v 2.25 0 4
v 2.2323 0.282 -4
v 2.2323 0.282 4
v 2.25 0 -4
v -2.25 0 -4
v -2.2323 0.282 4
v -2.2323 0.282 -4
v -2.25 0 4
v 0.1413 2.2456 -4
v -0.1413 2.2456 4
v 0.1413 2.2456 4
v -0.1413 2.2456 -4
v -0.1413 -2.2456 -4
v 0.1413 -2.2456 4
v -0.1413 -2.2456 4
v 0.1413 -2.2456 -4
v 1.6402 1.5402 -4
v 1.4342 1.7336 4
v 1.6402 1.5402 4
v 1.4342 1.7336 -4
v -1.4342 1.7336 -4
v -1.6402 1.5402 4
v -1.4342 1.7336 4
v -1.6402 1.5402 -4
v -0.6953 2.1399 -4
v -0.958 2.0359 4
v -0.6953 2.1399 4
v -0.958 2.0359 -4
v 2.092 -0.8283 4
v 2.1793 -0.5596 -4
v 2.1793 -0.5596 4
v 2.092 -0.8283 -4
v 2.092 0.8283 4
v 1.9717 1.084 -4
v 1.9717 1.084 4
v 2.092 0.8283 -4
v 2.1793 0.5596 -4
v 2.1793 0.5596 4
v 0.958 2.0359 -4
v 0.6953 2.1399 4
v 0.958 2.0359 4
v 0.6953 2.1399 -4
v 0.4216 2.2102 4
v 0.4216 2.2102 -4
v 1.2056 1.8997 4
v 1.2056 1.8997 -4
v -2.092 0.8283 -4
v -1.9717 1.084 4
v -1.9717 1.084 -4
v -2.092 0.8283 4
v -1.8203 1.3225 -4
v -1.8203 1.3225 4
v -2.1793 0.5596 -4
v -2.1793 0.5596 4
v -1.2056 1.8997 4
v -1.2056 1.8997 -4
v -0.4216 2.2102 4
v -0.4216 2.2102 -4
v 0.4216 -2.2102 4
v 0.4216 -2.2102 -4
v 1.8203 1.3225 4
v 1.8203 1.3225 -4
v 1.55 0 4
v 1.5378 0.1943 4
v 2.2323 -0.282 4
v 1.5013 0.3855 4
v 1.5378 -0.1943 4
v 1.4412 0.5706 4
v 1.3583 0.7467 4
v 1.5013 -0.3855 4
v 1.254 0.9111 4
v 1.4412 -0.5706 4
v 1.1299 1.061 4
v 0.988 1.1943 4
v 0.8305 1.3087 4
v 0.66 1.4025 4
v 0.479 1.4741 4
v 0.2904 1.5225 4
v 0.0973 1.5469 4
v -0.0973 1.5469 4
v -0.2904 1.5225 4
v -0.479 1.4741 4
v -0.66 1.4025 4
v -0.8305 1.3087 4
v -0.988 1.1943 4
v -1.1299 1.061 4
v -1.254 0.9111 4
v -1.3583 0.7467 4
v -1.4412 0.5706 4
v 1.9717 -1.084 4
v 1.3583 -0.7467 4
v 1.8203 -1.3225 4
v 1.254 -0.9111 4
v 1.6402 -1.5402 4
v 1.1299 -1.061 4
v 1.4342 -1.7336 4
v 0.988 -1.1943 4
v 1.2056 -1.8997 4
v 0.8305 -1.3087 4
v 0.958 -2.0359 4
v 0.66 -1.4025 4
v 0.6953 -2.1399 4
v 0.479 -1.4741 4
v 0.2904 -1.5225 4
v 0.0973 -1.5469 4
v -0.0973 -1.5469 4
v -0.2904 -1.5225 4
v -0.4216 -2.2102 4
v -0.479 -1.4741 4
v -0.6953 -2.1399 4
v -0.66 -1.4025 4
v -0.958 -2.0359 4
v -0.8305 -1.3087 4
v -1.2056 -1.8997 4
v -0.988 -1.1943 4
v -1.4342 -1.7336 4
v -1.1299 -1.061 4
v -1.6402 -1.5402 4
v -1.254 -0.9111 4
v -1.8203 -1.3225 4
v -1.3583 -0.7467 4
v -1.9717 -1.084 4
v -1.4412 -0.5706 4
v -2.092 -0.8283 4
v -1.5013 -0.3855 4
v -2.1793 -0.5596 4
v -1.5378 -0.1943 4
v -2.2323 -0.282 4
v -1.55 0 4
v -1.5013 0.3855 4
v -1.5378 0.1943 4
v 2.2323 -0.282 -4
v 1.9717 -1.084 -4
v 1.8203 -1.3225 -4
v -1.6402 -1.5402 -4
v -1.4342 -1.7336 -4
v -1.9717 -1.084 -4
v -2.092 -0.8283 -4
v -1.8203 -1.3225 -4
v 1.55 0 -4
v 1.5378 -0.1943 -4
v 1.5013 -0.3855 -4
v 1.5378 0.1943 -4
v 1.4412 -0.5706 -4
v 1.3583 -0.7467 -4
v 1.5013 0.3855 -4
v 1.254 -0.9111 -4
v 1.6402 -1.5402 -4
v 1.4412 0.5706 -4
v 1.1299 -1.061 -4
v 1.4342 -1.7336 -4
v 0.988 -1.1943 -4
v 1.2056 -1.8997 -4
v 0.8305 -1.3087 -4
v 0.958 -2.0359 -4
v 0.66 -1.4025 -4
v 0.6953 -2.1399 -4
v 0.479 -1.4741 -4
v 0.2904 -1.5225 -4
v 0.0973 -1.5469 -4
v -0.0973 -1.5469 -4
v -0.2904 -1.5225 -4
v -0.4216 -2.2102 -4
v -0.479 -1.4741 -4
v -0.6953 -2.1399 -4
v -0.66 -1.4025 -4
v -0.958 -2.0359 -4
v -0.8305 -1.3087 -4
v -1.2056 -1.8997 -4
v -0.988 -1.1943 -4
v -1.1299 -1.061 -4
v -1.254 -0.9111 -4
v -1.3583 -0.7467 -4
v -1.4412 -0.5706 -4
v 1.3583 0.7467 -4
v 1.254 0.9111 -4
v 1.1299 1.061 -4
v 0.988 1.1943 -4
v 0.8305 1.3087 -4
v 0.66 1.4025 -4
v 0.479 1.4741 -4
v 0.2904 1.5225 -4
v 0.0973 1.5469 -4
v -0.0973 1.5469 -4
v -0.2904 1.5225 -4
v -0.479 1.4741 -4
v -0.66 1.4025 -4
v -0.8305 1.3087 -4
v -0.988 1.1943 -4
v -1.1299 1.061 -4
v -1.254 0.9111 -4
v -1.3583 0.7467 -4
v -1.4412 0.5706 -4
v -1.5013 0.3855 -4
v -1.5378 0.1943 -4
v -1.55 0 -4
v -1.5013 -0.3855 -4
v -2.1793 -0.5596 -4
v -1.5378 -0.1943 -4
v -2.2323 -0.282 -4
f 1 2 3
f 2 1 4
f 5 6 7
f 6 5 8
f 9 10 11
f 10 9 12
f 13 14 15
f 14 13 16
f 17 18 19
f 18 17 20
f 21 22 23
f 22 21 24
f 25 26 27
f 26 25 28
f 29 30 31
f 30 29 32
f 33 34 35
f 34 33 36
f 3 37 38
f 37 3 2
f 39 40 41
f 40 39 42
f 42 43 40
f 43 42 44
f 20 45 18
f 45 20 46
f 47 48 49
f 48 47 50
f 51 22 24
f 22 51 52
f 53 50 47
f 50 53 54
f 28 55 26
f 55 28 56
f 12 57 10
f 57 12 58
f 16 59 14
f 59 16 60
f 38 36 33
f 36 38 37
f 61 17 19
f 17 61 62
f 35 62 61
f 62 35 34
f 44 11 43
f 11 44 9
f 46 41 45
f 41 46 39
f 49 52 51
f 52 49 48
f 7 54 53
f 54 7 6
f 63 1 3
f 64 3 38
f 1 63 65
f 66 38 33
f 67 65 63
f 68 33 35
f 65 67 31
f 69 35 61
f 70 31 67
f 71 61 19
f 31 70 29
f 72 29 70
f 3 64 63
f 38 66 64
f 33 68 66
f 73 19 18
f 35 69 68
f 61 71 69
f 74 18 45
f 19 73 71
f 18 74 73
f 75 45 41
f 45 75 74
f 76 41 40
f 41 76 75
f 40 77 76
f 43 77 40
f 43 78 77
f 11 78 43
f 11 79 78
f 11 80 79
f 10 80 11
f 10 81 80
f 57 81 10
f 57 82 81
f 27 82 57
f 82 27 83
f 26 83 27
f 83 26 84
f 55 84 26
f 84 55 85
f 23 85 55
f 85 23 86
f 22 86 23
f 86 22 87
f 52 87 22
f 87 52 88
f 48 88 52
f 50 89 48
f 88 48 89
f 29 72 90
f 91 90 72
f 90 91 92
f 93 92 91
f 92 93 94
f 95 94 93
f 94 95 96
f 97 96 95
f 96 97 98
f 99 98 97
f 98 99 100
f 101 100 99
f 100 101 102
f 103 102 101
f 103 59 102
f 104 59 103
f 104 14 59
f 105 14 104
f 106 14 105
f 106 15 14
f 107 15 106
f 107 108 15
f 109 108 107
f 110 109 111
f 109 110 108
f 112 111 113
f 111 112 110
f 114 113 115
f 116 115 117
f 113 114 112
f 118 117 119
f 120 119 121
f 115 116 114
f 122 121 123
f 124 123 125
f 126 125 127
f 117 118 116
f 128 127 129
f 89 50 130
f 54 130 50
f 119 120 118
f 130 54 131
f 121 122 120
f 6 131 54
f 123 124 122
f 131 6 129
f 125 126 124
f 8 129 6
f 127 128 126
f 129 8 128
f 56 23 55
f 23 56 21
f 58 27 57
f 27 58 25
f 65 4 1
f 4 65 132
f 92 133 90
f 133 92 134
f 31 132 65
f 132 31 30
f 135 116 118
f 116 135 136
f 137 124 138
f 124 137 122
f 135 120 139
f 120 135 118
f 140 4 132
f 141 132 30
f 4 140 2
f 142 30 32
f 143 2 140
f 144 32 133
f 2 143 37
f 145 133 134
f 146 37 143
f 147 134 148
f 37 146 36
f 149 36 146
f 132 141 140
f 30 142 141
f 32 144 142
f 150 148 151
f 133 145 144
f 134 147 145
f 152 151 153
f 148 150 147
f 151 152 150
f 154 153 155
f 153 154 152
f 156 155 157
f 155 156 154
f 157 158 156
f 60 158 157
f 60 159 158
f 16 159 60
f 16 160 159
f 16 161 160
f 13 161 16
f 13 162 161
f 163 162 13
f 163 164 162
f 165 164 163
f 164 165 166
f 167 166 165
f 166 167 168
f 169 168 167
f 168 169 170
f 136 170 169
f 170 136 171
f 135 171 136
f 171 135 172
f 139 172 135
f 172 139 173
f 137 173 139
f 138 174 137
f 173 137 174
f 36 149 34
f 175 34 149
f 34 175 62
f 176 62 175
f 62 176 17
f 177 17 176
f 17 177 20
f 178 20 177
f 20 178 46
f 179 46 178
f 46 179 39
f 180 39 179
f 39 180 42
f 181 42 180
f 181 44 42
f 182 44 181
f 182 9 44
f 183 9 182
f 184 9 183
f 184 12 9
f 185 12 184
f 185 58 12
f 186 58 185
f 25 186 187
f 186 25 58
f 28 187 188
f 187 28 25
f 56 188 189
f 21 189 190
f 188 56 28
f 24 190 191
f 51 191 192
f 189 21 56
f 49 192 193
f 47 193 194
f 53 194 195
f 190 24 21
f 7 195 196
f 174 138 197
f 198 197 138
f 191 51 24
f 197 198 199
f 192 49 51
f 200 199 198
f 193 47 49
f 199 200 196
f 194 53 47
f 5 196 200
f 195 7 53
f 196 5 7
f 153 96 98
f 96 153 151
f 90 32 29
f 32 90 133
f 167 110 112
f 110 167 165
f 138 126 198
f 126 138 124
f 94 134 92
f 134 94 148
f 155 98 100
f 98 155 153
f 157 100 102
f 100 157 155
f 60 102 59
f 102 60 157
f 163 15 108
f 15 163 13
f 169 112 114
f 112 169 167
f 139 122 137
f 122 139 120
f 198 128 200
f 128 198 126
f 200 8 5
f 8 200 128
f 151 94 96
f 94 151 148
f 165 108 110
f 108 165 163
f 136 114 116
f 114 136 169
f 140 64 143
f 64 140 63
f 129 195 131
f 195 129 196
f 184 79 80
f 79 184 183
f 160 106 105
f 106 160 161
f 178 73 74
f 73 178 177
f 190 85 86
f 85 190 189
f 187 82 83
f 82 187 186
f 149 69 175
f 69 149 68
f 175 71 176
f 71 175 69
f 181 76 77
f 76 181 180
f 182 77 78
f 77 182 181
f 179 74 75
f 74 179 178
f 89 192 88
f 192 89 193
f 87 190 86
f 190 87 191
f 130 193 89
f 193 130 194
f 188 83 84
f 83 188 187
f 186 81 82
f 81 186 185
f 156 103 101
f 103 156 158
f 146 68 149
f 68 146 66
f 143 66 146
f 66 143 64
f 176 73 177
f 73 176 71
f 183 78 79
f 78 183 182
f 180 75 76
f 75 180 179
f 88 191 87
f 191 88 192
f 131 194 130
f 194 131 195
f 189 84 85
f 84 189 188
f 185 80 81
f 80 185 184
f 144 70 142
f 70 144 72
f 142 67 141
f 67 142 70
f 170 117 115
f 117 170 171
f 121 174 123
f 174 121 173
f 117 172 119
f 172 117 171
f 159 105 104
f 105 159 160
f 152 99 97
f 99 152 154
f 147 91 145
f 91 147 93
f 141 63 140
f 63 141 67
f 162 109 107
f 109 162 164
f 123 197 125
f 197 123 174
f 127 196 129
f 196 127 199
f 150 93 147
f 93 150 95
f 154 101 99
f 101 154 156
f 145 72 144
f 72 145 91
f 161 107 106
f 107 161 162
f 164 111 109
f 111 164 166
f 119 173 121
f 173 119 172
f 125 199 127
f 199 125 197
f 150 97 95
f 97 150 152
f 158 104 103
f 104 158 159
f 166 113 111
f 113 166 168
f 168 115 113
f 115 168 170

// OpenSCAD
$fn = 50;


difference() {
	union() {
		translate(v = [0, 0, -4.0000000000]) {
			cylinder(h = 8, r = 2.2500000000);
		}
	}
	union() {
		translate(v = [0, 0, -100.0000000000]) {
			cylinder(h = 200, r = 1.5500000000);
		}
	}
}
